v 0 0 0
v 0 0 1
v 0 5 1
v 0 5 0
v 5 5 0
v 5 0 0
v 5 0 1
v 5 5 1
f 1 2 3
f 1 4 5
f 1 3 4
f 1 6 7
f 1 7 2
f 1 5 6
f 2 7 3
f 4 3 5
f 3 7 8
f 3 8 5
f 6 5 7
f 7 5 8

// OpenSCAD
/* Warning, this is a very basic generator with a lot of approximation 
input data : [VMIS, 2TW, 5x5x1.0mm, 24, , A, C04-00553A]
generated by com.zoubworld.electronics.cad.model3d.Basic
Date : Sun Feb 15 10:50:48 CET 2026
*/

//body
color("black")
translate([0,0,0])
cube([5.0,5.0,1.0], center=false);
